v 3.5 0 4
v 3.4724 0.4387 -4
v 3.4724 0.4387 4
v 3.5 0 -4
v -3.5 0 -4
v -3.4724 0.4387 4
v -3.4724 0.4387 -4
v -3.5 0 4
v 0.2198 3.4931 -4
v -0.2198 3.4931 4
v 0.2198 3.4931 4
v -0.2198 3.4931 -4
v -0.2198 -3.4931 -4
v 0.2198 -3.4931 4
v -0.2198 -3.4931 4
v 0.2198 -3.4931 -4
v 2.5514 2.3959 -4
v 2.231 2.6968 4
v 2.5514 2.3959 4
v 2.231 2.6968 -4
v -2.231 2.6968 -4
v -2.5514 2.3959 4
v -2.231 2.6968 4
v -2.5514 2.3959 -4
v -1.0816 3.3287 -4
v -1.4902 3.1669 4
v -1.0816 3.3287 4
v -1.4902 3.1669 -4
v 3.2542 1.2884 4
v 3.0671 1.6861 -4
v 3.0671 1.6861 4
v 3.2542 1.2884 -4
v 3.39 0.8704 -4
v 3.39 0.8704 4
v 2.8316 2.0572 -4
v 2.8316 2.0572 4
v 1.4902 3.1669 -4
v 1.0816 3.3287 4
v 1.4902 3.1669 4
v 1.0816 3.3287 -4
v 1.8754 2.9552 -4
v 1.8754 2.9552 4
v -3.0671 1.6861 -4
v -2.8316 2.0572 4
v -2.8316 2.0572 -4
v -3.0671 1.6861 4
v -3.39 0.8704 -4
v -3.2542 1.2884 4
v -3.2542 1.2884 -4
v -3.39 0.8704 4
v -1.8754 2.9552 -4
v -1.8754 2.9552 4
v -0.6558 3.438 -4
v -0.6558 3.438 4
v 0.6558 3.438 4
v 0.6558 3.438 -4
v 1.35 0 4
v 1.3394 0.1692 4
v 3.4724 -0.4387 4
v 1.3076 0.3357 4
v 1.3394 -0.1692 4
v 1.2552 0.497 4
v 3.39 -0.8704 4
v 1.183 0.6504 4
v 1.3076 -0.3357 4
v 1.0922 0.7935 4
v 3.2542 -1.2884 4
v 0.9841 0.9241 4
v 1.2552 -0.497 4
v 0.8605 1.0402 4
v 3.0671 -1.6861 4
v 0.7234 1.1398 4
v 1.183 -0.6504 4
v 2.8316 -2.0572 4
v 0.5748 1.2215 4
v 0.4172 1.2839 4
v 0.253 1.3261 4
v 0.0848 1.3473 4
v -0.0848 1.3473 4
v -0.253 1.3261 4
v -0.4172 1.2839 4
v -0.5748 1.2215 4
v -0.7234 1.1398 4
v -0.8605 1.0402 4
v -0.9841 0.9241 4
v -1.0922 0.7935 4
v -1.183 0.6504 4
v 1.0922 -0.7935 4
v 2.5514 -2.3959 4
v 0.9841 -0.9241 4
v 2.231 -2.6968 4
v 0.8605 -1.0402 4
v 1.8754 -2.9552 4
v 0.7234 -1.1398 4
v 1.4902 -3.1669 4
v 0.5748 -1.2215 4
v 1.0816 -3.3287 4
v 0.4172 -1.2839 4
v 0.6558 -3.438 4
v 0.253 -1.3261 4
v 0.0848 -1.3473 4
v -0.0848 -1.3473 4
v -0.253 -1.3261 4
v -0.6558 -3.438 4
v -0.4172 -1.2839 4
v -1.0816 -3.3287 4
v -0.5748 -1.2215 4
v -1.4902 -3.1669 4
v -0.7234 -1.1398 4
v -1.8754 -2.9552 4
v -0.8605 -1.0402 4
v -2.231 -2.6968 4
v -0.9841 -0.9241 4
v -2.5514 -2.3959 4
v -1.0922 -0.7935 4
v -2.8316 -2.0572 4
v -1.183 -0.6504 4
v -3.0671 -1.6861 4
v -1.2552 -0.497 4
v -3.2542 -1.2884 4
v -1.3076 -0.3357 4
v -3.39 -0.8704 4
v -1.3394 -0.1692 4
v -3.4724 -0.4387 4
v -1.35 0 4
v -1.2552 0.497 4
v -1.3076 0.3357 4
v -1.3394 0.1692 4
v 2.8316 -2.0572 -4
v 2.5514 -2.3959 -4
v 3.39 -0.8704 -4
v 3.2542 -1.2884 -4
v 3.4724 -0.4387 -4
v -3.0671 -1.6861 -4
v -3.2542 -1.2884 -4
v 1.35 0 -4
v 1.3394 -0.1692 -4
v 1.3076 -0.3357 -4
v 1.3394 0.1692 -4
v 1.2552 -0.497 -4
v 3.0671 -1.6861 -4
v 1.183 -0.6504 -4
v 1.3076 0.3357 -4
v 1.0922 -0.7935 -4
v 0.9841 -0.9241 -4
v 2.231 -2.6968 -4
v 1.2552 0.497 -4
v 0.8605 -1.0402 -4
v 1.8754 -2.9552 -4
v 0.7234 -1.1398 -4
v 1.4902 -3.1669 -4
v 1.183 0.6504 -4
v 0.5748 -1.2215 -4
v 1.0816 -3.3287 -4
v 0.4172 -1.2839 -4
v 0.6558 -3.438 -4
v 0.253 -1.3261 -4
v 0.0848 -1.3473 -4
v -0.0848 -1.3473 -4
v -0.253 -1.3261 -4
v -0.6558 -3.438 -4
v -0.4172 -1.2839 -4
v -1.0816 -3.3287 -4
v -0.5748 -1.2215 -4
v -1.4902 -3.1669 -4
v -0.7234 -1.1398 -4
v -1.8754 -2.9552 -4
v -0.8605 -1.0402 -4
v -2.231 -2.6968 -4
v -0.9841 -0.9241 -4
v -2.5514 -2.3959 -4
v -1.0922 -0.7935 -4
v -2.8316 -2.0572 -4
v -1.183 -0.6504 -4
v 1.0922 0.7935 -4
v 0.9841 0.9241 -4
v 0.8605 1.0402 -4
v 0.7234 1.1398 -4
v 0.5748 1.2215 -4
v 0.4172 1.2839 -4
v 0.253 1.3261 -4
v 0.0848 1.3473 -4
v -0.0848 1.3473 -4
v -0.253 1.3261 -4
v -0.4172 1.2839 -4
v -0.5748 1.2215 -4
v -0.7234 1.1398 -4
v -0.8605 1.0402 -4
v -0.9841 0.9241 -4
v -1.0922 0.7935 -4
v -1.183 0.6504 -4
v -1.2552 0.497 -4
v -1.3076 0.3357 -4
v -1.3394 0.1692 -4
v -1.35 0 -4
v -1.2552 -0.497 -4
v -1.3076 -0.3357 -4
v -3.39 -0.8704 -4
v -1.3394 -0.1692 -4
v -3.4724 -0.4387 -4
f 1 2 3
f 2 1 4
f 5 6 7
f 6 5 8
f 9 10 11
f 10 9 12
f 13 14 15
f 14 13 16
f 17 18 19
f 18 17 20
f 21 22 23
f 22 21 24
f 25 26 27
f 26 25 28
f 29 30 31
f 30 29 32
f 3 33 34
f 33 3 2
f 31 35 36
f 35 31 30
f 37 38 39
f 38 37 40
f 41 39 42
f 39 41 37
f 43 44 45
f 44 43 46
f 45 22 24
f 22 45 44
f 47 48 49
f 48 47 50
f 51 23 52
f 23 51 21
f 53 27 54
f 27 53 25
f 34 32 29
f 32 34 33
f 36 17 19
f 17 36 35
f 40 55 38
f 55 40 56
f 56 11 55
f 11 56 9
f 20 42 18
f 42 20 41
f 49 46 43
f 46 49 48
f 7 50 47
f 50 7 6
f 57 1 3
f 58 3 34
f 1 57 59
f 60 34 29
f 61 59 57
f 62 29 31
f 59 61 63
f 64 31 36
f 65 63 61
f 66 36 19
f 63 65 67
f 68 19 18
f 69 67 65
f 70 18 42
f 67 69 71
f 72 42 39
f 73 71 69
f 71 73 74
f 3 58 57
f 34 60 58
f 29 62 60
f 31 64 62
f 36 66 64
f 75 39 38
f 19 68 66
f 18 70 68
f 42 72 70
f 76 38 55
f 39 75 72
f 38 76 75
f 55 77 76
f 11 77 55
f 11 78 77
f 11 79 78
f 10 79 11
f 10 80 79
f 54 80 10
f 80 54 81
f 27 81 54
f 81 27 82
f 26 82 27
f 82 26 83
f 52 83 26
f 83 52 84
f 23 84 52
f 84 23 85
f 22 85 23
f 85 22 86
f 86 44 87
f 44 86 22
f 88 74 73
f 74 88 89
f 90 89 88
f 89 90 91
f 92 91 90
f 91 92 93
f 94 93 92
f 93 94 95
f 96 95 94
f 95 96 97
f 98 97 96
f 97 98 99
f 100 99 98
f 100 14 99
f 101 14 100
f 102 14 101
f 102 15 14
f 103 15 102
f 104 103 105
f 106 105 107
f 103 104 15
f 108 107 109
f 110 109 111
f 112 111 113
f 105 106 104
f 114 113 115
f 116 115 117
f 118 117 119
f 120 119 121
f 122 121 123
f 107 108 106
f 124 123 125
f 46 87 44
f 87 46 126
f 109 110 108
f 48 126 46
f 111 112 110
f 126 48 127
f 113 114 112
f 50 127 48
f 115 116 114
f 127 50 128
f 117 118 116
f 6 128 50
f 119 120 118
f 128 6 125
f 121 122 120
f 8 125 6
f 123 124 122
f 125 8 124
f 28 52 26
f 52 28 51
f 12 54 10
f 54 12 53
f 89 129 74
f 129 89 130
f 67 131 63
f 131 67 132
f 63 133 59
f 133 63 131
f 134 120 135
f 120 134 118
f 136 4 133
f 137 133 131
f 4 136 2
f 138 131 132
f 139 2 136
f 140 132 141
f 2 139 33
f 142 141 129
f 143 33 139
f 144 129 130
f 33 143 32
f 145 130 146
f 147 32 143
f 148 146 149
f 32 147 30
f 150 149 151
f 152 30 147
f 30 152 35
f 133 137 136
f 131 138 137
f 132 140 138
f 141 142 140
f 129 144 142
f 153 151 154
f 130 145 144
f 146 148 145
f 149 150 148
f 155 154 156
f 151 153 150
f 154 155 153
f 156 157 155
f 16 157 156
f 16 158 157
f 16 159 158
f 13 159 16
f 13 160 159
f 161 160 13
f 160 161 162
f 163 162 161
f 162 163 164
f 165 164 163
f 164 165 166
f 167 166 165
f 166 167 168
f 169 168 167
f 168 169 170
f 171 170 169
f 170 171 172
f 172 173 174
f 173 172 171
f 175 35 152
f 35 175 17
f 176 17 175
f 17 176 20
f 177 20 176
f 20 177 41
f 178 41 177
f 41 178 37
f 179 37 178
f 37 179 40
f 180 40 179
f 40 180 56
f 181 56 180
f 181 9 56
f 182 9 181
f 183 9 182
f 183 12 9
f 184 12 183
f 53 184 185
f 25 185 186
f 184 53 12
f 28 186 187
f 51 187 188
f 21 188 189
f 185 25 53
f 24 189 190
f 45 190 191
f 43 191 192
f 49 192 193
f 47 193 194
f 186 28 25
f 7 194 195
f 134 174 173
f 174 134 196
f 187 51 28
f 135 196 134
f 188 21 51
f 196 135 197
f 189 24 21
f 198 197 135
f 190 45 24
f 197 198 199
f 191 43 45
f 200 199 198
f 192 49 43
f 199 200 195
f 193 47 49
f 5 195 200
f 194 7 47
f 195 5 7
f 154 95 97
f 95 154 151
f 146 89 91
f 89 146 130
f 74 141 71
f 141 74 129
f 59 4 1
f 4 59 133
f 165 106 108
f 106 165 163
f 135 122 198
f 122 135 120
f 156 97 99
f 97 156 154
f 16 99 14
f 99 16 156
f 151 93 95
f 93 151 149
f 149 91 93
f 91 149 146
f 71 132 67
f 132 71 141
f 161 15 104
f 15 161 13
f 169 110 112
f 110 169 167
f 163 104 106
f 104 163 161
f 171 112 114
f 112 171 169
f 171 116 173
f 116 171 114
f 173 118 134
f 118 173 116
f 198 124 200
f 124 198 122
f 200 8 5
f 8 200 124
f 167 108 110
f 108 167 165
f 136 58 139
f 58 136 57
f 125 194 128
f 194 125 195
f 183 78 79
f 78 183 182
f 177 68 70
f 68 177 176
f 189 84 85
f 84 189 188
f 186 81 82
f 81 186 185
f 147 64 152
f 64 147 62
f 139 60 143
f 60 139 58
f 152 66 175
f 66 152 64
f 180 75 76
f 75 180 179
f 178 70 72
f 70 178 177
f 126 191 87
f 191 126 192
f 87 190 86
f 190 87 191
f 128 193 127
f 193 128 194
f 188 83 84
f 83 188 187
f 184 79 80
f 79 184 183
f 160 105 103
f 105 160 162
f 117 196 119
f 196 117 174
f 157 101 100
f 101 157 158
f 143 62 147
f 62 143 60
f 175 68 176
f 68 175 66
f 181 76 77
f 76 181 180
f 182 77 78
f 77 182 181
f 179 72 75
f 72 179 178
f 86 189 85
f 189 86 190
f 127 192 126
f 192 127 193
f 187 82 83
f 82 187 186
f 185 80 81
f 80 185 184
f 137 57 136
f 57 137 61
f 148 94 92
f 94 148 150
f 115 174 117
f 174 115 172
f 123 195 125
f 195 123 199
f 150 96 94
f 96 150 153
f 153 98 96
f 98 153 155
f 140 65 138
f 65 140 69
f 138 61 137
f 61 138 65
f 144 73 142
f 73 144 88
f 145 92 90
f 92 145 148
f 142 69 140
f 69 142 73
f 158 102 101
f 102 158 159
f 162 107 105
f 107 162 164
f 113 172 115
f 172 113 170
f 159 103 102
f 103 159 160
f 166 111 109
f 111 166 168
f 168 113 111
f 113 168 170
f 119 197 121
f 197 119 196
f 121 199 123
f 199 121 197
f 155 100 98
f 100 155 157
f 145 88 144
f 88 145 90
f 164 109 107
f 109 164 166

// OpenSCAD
$fn = 50;


difference() {
	union() {
		translate(v = [0, 0, -4.0000000000]) {
			cylinder(h = 8, r = 3.5000000000);
		}
	}
	union() {
		translate(v = [0, 0, -100.0000000000]) {
			cylinder(h = 200, r = 1.3500000000);
		}
	}
}
